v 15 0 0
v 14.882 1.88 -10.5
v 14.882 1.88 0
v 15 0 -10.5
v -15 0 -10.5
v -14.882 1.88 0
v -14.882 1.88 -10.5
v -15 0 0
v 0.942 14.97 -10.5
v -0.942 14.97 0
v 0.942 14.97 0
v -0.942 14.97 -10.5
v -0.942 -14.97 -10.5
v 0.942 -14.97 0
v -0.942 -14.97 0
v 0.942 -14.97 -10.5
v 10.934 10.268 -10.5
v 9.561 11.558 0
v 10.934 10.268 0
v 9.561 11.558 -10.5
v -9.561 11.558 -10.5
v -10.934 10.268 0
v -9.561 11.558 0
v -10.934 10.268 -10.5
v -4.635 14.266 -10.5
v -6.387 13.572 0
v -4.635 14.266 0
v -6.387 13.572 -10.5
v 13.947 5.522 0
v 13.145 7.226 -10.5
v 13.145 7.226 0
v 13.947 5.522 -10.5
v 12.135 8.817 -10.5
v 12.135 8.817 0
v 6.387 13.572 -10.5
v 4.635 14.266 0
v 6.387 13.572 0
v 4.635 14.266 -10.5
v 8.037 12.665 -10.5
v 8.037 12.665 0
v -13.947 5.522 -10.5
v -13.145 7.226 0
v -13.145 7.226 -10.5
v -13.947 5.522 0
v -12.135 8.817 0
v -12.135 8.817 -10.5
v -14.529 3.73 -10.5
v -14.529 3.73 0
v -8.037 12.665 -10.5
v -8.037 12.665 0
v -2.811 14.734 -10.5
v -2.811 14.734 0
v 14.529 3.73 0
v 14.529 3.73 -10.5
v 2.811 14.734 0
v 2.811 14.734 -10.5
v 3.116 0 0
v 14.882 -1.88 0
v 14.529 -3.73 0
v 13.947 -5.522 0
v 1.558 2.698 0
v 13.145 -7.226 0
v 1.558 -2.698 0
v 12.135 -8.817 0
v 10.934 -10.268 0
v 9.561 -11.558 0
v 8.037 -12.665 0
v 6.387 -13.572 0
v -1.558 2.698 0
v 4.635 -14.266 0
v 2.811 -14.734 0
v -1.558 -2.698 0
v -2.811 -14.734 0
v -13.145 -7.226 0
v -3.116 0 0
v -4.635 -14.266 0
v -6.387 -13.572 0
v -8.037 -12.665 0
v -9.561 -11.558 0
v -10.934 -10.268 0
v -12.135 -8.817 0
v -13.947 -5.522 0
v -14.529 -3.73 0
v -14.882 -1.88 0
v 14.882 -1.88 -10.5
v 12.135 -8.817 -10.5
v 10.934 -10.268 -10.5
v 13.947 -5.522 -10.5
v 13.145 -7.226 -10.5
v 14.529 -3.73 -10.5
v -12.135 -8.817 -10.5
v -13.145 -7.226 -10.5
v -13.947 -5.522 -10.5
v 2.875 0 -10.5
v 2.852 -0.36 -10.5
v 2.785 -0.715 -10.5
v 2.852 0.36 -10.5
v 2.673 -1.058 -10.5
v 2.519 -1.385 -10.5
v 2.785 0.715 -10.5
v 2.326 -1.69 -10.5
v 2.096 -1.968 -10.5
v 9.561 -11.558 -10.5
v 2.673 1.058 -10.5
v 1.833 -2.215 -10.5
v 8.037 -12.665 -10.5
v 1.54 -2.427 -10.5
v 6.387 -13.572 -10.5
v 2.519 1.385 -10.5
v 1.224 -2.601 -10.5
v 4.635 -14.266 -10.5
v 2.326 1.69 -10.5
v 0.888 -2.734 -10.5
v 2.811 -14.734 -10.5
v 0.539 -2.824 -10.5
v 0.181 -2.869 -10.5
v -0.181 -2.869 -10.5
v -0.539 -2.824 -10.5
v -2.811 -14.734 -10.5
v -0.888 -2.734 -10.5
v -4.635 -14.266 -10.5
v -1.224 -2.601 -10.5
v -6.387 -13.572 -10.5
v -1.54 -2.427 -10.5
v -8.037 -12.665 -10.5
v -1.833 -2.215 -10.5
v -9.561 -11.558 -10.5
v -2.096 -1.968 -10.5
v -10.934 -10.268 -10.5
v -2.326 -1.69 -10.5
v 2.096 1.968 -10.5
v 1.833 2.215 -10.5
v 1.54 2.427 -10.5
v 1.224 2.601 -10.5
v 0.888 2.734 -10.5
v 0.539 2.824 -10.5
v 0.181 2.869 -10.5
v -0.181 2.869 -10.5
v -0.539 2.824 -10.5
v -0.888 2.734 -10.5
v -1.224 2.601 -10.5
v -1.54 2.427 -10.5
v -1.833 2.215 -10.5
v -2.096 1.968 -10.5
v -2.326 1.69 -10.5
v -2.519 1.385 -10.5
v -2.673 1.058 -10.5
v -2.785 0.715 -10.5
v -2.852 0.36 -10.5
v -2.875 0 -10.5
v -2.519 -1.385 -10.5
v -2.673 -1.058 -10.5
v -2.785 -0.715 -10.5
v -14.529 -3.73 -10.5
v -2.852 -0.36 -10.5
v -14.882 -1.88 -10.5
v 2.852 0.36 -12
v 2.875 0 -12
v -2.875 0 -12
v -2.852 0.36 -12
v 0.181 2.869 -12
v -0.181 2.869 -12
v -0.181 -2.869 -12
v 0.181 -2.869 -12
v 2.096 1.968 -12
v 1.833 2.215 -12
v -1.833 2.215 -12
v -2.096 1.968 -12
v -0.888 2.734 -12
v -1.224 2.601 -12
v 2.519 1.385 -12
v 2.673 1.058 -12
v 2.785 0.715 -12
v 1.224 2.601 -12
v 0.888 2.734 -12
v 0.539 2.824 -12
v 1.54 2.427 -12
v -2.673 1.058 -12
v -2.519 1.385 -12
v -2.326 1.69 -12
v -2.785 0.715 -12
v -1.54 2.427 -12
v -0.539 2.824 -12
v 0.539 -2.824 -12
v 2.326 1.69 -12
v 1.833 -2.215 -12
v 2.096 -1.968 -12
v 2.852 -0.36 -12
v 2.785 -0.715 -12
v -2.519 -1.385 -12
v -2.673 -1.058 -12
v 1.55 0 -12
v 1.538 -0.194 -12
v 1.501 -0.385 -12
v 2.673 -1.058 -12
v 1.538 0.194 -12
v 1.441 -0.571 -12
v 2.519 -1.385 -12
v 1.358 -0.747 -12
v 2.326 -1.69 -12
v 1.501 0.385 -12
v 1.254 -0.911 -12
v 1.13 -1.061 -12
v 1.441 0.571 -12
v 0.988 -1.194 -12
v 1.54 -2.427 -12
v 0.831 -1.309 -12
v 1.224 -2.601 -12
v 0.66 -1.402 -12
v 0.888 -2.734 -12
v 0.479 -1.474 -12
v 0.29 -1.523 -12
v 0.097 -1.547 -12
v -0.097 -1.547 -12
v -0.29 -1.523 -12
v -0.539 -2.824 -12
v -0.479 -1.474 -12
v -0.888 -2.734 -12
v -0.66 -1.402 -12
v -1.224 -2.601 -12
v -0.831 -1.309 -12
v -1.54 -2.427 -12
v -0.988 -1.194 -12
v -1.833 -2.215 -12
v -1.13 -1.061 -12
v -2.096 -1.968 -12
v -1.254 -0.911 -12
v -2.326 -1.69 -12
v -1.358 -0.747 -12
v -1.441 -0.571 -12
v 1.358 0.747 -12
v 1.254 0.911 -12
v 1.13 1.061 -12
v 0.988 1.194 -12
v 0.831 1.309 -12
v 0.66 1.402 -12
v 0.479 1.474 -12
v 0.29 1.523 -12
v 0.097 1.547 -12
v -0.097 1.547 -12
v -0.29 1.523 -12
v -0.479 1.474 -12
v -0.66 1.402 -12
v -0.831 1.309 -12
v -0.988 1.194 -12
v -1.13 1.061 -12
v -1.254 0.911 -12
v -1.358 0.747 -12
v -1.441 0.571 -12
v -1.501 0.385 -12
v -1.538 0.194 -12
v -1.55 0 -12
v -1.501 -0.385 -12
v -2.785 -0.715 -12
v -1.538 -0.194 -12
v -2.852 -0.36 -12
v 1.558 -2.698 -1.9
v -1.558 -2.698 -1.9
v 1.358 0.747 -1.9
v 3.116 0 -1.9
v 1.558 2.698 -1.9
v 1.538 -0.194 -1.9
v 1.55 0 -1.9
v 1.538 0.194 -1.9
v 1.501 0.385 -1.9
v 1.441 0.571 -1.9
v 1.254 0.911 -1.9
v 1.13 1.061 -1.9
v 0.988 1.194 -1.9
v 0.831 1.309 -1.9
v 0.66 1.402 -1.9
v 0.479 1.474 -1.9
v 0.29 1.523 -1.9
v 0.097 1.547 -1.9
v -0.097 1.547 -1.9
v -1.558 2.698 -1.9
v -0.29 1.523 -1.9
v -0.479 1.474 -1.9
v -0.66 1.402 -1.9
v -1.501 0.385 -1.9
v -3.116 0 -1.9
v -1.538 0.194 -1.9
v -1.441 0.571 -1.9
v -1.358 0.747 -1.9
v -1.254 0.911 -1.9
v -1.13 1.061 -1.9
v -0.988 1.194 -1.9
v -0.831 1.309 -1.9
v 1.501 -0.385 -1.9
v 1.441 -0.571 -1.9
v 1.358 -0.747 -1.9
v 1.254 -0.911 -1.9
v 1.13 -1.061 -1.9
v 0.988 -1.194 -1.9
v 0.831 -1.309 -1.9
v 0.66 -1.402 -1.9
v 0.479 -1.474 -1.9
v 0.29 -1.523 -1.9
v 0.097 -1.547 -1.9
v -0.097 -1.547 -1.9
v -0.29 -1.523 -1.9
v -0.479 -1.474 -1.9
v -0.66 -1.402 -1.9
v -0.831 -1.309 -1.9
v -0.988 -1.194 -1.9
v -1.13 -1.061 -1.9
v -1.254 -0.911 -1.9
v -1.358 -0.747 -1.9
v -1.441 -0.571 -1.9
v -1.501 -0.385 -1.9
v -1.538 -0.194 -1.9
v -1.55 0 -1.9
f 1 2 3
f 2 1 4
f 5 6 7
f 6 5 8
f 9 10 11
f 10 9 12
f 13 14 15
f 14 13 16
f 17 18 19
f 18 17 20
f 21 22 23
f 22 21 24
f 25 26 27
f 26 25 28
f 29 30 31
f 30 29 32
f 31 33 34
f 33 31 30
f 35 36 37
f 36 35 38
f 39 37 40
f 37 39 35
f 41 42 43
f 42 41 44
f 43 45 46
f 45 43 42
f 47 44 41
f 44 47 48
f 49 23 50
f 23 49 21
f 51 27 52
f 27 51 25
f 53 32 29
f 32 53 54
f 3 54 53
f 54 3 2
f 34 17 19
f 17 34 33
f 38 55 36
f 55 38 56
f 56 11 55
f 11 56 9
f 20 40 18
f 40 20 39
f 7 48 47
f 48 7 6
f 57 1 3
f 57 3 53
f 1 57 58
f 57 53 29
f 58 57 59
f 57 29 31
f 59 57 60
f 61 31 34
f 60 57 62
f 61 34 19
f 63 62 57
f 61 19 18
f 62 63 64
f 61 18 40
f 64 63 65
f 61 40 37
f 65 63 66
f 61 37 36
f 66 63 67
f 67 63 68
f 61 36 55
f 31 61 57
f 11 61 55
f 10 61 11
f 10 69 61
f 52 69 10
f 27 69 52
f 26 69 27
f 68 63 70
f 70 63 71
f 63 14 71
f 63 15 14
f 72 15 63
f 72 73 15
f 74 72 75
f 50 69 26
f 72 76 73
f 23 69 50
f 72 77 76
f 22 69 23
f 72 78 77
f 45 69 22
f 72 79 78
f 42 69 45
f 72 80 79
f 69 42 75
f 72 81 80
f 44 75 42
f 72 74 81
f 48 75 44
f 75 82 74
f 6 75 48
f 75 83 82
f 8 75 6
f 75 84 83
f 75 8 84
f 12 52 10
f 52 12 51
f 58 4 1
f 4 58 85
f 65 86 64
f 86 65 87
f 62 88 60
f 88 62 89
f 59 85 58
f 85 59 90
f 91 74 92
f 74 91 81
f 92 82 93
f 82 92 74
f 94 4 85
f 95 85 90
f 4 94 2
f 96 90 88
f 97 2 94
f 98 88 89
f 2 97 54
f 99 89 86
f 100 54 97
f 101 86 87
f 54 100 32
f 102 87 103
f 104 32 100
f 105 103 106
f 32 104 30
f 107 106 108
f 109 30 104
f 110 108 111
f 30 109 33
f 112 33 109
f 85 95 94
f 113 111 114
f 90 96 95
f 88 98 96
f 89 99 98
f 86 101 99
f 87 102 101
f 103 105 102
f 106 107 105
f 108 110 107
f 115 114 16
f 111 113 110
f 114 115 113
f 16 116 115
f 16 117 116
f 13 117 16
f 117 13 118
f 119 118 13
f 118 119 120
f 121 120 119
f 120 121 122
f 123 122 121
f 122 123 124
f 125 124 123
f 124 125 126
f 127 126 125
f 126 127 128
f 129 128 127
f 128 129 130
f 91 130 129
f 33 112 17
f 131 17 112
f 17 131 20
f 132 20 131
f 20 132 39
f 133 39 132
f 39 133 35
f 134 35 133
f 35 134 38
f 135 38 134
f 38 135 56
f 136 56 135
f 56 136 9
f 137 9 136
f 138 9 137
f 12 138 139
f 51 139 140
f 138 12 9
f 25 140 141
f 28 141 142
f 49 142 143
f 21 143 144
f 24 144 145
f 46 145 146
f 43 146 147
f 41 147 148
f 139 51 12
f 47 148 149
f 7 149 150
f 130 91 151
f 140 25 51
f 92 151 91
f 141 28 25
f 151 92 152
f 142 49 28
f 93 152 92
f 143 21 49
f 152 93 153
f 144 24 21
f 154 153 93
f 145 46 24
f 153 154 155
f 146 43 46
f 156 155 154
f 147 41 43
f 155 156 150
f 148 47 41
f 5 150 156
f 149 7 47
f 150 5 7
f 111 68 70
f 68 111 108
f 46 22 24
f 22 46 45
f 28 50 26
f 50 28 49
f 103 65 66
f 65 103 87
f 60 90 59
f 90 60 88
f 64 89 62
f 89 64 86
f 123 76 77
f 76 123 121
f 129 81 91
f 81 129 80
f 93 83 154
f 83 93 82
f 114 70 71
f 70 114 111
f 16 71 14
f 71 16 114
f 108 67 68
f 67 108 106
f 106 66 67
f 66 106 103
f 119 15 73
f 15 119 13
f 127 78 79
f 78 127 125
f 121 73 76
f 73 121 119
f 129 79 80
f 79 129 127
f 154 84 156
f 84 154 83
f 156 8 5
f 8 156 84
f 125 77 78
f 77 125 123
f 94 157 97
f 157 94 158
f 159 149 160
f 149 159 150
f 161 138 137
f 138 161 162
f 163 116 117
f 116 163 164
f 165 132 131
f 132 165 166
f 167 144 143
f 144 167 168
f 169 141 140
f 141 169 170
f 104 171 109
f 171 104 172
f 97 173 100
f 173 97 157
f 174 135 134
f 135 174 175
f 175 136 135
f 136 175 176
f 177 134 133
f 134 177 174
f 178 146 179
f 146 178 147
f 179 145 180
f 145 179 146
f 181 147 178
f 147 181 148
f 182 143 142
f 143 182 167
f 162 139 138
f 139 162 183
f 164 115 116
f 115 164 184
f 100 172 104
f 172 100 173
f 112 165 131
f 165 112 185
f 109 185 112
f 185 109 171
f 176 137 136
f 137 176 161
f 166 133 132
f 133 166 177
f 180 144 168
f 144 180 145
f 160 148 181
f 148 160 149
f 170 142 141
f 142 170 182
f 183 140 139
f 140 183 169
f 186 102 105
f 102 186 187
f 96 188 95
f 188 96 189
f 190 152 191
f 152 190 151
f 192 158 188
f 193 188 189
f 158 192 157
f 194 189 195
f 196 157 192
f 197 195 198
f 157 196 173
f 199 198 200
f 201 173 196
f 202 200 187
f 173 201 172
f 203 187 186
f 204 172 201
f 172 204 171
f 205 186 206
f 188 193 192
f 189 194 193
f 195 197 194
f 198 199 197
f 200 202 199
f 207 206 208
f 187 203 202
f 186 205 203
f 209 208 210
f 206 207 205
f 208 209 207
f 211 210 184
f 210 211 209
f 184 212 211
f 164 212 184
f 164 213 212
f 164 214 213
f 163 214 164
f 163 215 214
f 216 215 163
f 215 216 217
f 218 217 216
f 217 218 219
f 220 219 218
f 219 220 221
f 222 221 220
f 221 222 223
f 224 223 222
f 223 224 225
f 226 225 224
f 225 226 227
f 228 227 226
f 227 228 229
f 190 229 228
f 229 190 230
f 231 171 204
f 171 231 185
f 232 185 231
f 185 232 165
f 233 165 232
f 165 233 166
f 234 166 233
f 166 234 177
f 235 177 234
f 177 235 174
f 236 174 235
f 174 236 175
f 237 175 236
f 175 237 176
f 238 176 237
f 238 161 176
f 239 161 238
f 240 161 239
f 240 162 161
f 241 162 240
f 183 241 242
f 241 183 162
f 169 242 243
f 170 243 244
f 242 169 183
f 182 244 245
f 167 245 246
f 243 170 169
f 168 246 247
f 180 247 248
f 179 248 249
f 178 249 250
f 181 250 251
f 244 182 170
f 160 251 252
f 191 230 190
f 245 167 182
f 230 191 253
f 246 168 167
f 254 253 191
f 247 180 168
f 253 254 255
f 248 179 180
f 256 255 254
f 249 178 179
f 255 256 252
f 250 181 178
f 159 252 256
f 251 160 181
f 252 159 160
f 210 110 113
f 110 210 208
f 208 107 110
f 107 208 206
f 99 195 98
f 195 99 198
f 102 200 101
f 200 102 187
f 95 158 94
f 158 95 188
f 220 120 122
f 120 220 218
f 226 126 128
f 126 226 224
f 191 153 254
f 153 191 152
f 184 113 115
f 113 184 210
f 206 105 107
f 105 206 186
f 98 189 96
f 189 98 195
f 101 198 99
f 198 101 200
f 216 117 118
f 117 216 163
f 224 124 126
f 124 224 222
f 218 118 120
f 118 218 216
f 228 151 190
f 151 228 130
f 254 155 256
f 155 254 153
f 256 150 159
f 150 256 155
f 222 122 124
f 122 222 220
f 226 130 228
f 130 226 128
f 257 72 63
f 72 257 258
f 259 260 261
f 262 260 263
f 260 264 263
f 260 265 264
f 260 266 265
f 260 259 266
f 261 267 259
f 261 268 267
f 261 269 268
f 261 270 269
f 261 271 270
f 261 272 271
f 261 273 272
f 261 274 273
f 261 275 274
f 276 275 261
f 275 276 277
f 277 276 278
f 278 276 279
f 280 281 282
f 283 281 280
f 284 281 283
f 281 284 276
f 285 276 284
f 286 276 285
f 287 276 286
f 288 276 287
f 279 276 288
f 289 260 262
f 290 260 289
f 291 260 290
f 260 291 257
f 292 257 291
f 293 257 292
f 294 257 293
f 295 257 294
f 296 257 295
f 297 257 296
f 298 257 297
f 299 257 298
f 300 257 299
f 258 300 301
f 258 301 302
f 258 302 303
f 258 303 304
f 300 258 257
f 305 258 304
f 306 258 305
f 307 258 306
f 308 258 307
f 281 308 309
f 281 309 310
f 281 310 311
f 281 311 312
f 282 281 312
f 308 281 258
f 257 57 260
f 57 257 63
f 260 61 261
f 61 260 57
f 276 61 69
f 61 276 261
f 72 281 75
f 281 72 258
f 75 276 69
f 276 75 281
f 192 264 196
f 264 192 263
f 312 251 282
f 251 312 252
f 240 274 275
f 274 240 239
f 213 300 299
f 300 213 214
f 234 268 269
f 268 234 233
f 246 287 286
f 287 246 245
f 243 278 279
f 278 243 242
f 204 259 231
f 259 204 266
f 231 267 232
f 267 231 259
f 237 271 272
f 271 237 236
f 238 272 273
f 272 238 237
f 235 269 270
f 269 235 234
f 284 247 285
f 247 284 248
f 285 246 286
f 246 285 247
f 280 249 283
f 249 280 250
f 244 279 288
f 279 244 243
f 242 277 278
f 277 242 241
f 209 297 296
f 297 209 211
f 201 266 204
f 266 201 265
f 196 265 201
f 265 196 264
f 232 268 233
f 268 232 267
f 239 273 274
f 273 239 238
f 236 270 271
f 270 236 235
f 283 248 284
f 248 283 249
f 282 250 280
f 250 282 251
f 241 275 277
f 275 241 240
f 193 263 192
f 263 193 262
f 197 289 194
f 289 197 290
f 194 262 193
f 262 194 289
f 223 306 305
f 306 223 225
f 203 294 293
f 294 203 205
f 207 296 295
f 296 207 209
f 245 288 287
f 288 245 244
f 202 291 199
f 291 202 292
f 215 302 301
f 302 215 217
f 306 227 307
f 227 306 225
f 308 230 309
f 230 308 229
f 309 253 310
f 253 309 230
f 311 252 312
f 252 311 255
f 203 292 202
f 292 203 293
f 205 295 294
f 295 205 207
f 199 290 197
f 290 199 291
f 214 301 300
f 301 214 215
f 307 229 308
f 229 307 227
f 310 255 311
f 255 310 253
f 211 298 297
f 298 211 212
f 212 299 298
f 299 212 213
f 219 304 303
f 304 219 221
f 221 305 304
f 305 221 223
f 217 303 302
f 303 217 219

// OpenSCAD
$fn = 50;


difference() {
	union() {
		translate(v = [0, 0, -10.5000000000]) {
			cylinder(h = 10.5000000000, r = 15.0000000000);
		}
		translate(v = [0, 0, -12.0000000000]) {
			cylinder(h = 12, r = 2.8750000000);
		}
	}
	union() {
		translate(v = [0, 0, 0]) {
			rotate(a = [0, 0, 0]) {
				difference() {
					union() {
						translate(v = [0, 0, -1.9000000000]) {
							linear_extrude(height = 1.9000000000) {
								polygon(points = [[3.1158000000, 0.0000000000], [1.5579000000, 2.6983619531], [-1.5579000000, 2.6983619531], [-3.1158000000, 0.0000000000], [-1.5579000000, -2.6983619531], [1.5579000000, -2.6983619531]]);
							}
						}
					}
					union();
				}
			}
		}
		#translate(v = [0, 0, -100.0000000000]) {
			cylinder(h = 200, r = 1.5500000000);
		}
	}
}
